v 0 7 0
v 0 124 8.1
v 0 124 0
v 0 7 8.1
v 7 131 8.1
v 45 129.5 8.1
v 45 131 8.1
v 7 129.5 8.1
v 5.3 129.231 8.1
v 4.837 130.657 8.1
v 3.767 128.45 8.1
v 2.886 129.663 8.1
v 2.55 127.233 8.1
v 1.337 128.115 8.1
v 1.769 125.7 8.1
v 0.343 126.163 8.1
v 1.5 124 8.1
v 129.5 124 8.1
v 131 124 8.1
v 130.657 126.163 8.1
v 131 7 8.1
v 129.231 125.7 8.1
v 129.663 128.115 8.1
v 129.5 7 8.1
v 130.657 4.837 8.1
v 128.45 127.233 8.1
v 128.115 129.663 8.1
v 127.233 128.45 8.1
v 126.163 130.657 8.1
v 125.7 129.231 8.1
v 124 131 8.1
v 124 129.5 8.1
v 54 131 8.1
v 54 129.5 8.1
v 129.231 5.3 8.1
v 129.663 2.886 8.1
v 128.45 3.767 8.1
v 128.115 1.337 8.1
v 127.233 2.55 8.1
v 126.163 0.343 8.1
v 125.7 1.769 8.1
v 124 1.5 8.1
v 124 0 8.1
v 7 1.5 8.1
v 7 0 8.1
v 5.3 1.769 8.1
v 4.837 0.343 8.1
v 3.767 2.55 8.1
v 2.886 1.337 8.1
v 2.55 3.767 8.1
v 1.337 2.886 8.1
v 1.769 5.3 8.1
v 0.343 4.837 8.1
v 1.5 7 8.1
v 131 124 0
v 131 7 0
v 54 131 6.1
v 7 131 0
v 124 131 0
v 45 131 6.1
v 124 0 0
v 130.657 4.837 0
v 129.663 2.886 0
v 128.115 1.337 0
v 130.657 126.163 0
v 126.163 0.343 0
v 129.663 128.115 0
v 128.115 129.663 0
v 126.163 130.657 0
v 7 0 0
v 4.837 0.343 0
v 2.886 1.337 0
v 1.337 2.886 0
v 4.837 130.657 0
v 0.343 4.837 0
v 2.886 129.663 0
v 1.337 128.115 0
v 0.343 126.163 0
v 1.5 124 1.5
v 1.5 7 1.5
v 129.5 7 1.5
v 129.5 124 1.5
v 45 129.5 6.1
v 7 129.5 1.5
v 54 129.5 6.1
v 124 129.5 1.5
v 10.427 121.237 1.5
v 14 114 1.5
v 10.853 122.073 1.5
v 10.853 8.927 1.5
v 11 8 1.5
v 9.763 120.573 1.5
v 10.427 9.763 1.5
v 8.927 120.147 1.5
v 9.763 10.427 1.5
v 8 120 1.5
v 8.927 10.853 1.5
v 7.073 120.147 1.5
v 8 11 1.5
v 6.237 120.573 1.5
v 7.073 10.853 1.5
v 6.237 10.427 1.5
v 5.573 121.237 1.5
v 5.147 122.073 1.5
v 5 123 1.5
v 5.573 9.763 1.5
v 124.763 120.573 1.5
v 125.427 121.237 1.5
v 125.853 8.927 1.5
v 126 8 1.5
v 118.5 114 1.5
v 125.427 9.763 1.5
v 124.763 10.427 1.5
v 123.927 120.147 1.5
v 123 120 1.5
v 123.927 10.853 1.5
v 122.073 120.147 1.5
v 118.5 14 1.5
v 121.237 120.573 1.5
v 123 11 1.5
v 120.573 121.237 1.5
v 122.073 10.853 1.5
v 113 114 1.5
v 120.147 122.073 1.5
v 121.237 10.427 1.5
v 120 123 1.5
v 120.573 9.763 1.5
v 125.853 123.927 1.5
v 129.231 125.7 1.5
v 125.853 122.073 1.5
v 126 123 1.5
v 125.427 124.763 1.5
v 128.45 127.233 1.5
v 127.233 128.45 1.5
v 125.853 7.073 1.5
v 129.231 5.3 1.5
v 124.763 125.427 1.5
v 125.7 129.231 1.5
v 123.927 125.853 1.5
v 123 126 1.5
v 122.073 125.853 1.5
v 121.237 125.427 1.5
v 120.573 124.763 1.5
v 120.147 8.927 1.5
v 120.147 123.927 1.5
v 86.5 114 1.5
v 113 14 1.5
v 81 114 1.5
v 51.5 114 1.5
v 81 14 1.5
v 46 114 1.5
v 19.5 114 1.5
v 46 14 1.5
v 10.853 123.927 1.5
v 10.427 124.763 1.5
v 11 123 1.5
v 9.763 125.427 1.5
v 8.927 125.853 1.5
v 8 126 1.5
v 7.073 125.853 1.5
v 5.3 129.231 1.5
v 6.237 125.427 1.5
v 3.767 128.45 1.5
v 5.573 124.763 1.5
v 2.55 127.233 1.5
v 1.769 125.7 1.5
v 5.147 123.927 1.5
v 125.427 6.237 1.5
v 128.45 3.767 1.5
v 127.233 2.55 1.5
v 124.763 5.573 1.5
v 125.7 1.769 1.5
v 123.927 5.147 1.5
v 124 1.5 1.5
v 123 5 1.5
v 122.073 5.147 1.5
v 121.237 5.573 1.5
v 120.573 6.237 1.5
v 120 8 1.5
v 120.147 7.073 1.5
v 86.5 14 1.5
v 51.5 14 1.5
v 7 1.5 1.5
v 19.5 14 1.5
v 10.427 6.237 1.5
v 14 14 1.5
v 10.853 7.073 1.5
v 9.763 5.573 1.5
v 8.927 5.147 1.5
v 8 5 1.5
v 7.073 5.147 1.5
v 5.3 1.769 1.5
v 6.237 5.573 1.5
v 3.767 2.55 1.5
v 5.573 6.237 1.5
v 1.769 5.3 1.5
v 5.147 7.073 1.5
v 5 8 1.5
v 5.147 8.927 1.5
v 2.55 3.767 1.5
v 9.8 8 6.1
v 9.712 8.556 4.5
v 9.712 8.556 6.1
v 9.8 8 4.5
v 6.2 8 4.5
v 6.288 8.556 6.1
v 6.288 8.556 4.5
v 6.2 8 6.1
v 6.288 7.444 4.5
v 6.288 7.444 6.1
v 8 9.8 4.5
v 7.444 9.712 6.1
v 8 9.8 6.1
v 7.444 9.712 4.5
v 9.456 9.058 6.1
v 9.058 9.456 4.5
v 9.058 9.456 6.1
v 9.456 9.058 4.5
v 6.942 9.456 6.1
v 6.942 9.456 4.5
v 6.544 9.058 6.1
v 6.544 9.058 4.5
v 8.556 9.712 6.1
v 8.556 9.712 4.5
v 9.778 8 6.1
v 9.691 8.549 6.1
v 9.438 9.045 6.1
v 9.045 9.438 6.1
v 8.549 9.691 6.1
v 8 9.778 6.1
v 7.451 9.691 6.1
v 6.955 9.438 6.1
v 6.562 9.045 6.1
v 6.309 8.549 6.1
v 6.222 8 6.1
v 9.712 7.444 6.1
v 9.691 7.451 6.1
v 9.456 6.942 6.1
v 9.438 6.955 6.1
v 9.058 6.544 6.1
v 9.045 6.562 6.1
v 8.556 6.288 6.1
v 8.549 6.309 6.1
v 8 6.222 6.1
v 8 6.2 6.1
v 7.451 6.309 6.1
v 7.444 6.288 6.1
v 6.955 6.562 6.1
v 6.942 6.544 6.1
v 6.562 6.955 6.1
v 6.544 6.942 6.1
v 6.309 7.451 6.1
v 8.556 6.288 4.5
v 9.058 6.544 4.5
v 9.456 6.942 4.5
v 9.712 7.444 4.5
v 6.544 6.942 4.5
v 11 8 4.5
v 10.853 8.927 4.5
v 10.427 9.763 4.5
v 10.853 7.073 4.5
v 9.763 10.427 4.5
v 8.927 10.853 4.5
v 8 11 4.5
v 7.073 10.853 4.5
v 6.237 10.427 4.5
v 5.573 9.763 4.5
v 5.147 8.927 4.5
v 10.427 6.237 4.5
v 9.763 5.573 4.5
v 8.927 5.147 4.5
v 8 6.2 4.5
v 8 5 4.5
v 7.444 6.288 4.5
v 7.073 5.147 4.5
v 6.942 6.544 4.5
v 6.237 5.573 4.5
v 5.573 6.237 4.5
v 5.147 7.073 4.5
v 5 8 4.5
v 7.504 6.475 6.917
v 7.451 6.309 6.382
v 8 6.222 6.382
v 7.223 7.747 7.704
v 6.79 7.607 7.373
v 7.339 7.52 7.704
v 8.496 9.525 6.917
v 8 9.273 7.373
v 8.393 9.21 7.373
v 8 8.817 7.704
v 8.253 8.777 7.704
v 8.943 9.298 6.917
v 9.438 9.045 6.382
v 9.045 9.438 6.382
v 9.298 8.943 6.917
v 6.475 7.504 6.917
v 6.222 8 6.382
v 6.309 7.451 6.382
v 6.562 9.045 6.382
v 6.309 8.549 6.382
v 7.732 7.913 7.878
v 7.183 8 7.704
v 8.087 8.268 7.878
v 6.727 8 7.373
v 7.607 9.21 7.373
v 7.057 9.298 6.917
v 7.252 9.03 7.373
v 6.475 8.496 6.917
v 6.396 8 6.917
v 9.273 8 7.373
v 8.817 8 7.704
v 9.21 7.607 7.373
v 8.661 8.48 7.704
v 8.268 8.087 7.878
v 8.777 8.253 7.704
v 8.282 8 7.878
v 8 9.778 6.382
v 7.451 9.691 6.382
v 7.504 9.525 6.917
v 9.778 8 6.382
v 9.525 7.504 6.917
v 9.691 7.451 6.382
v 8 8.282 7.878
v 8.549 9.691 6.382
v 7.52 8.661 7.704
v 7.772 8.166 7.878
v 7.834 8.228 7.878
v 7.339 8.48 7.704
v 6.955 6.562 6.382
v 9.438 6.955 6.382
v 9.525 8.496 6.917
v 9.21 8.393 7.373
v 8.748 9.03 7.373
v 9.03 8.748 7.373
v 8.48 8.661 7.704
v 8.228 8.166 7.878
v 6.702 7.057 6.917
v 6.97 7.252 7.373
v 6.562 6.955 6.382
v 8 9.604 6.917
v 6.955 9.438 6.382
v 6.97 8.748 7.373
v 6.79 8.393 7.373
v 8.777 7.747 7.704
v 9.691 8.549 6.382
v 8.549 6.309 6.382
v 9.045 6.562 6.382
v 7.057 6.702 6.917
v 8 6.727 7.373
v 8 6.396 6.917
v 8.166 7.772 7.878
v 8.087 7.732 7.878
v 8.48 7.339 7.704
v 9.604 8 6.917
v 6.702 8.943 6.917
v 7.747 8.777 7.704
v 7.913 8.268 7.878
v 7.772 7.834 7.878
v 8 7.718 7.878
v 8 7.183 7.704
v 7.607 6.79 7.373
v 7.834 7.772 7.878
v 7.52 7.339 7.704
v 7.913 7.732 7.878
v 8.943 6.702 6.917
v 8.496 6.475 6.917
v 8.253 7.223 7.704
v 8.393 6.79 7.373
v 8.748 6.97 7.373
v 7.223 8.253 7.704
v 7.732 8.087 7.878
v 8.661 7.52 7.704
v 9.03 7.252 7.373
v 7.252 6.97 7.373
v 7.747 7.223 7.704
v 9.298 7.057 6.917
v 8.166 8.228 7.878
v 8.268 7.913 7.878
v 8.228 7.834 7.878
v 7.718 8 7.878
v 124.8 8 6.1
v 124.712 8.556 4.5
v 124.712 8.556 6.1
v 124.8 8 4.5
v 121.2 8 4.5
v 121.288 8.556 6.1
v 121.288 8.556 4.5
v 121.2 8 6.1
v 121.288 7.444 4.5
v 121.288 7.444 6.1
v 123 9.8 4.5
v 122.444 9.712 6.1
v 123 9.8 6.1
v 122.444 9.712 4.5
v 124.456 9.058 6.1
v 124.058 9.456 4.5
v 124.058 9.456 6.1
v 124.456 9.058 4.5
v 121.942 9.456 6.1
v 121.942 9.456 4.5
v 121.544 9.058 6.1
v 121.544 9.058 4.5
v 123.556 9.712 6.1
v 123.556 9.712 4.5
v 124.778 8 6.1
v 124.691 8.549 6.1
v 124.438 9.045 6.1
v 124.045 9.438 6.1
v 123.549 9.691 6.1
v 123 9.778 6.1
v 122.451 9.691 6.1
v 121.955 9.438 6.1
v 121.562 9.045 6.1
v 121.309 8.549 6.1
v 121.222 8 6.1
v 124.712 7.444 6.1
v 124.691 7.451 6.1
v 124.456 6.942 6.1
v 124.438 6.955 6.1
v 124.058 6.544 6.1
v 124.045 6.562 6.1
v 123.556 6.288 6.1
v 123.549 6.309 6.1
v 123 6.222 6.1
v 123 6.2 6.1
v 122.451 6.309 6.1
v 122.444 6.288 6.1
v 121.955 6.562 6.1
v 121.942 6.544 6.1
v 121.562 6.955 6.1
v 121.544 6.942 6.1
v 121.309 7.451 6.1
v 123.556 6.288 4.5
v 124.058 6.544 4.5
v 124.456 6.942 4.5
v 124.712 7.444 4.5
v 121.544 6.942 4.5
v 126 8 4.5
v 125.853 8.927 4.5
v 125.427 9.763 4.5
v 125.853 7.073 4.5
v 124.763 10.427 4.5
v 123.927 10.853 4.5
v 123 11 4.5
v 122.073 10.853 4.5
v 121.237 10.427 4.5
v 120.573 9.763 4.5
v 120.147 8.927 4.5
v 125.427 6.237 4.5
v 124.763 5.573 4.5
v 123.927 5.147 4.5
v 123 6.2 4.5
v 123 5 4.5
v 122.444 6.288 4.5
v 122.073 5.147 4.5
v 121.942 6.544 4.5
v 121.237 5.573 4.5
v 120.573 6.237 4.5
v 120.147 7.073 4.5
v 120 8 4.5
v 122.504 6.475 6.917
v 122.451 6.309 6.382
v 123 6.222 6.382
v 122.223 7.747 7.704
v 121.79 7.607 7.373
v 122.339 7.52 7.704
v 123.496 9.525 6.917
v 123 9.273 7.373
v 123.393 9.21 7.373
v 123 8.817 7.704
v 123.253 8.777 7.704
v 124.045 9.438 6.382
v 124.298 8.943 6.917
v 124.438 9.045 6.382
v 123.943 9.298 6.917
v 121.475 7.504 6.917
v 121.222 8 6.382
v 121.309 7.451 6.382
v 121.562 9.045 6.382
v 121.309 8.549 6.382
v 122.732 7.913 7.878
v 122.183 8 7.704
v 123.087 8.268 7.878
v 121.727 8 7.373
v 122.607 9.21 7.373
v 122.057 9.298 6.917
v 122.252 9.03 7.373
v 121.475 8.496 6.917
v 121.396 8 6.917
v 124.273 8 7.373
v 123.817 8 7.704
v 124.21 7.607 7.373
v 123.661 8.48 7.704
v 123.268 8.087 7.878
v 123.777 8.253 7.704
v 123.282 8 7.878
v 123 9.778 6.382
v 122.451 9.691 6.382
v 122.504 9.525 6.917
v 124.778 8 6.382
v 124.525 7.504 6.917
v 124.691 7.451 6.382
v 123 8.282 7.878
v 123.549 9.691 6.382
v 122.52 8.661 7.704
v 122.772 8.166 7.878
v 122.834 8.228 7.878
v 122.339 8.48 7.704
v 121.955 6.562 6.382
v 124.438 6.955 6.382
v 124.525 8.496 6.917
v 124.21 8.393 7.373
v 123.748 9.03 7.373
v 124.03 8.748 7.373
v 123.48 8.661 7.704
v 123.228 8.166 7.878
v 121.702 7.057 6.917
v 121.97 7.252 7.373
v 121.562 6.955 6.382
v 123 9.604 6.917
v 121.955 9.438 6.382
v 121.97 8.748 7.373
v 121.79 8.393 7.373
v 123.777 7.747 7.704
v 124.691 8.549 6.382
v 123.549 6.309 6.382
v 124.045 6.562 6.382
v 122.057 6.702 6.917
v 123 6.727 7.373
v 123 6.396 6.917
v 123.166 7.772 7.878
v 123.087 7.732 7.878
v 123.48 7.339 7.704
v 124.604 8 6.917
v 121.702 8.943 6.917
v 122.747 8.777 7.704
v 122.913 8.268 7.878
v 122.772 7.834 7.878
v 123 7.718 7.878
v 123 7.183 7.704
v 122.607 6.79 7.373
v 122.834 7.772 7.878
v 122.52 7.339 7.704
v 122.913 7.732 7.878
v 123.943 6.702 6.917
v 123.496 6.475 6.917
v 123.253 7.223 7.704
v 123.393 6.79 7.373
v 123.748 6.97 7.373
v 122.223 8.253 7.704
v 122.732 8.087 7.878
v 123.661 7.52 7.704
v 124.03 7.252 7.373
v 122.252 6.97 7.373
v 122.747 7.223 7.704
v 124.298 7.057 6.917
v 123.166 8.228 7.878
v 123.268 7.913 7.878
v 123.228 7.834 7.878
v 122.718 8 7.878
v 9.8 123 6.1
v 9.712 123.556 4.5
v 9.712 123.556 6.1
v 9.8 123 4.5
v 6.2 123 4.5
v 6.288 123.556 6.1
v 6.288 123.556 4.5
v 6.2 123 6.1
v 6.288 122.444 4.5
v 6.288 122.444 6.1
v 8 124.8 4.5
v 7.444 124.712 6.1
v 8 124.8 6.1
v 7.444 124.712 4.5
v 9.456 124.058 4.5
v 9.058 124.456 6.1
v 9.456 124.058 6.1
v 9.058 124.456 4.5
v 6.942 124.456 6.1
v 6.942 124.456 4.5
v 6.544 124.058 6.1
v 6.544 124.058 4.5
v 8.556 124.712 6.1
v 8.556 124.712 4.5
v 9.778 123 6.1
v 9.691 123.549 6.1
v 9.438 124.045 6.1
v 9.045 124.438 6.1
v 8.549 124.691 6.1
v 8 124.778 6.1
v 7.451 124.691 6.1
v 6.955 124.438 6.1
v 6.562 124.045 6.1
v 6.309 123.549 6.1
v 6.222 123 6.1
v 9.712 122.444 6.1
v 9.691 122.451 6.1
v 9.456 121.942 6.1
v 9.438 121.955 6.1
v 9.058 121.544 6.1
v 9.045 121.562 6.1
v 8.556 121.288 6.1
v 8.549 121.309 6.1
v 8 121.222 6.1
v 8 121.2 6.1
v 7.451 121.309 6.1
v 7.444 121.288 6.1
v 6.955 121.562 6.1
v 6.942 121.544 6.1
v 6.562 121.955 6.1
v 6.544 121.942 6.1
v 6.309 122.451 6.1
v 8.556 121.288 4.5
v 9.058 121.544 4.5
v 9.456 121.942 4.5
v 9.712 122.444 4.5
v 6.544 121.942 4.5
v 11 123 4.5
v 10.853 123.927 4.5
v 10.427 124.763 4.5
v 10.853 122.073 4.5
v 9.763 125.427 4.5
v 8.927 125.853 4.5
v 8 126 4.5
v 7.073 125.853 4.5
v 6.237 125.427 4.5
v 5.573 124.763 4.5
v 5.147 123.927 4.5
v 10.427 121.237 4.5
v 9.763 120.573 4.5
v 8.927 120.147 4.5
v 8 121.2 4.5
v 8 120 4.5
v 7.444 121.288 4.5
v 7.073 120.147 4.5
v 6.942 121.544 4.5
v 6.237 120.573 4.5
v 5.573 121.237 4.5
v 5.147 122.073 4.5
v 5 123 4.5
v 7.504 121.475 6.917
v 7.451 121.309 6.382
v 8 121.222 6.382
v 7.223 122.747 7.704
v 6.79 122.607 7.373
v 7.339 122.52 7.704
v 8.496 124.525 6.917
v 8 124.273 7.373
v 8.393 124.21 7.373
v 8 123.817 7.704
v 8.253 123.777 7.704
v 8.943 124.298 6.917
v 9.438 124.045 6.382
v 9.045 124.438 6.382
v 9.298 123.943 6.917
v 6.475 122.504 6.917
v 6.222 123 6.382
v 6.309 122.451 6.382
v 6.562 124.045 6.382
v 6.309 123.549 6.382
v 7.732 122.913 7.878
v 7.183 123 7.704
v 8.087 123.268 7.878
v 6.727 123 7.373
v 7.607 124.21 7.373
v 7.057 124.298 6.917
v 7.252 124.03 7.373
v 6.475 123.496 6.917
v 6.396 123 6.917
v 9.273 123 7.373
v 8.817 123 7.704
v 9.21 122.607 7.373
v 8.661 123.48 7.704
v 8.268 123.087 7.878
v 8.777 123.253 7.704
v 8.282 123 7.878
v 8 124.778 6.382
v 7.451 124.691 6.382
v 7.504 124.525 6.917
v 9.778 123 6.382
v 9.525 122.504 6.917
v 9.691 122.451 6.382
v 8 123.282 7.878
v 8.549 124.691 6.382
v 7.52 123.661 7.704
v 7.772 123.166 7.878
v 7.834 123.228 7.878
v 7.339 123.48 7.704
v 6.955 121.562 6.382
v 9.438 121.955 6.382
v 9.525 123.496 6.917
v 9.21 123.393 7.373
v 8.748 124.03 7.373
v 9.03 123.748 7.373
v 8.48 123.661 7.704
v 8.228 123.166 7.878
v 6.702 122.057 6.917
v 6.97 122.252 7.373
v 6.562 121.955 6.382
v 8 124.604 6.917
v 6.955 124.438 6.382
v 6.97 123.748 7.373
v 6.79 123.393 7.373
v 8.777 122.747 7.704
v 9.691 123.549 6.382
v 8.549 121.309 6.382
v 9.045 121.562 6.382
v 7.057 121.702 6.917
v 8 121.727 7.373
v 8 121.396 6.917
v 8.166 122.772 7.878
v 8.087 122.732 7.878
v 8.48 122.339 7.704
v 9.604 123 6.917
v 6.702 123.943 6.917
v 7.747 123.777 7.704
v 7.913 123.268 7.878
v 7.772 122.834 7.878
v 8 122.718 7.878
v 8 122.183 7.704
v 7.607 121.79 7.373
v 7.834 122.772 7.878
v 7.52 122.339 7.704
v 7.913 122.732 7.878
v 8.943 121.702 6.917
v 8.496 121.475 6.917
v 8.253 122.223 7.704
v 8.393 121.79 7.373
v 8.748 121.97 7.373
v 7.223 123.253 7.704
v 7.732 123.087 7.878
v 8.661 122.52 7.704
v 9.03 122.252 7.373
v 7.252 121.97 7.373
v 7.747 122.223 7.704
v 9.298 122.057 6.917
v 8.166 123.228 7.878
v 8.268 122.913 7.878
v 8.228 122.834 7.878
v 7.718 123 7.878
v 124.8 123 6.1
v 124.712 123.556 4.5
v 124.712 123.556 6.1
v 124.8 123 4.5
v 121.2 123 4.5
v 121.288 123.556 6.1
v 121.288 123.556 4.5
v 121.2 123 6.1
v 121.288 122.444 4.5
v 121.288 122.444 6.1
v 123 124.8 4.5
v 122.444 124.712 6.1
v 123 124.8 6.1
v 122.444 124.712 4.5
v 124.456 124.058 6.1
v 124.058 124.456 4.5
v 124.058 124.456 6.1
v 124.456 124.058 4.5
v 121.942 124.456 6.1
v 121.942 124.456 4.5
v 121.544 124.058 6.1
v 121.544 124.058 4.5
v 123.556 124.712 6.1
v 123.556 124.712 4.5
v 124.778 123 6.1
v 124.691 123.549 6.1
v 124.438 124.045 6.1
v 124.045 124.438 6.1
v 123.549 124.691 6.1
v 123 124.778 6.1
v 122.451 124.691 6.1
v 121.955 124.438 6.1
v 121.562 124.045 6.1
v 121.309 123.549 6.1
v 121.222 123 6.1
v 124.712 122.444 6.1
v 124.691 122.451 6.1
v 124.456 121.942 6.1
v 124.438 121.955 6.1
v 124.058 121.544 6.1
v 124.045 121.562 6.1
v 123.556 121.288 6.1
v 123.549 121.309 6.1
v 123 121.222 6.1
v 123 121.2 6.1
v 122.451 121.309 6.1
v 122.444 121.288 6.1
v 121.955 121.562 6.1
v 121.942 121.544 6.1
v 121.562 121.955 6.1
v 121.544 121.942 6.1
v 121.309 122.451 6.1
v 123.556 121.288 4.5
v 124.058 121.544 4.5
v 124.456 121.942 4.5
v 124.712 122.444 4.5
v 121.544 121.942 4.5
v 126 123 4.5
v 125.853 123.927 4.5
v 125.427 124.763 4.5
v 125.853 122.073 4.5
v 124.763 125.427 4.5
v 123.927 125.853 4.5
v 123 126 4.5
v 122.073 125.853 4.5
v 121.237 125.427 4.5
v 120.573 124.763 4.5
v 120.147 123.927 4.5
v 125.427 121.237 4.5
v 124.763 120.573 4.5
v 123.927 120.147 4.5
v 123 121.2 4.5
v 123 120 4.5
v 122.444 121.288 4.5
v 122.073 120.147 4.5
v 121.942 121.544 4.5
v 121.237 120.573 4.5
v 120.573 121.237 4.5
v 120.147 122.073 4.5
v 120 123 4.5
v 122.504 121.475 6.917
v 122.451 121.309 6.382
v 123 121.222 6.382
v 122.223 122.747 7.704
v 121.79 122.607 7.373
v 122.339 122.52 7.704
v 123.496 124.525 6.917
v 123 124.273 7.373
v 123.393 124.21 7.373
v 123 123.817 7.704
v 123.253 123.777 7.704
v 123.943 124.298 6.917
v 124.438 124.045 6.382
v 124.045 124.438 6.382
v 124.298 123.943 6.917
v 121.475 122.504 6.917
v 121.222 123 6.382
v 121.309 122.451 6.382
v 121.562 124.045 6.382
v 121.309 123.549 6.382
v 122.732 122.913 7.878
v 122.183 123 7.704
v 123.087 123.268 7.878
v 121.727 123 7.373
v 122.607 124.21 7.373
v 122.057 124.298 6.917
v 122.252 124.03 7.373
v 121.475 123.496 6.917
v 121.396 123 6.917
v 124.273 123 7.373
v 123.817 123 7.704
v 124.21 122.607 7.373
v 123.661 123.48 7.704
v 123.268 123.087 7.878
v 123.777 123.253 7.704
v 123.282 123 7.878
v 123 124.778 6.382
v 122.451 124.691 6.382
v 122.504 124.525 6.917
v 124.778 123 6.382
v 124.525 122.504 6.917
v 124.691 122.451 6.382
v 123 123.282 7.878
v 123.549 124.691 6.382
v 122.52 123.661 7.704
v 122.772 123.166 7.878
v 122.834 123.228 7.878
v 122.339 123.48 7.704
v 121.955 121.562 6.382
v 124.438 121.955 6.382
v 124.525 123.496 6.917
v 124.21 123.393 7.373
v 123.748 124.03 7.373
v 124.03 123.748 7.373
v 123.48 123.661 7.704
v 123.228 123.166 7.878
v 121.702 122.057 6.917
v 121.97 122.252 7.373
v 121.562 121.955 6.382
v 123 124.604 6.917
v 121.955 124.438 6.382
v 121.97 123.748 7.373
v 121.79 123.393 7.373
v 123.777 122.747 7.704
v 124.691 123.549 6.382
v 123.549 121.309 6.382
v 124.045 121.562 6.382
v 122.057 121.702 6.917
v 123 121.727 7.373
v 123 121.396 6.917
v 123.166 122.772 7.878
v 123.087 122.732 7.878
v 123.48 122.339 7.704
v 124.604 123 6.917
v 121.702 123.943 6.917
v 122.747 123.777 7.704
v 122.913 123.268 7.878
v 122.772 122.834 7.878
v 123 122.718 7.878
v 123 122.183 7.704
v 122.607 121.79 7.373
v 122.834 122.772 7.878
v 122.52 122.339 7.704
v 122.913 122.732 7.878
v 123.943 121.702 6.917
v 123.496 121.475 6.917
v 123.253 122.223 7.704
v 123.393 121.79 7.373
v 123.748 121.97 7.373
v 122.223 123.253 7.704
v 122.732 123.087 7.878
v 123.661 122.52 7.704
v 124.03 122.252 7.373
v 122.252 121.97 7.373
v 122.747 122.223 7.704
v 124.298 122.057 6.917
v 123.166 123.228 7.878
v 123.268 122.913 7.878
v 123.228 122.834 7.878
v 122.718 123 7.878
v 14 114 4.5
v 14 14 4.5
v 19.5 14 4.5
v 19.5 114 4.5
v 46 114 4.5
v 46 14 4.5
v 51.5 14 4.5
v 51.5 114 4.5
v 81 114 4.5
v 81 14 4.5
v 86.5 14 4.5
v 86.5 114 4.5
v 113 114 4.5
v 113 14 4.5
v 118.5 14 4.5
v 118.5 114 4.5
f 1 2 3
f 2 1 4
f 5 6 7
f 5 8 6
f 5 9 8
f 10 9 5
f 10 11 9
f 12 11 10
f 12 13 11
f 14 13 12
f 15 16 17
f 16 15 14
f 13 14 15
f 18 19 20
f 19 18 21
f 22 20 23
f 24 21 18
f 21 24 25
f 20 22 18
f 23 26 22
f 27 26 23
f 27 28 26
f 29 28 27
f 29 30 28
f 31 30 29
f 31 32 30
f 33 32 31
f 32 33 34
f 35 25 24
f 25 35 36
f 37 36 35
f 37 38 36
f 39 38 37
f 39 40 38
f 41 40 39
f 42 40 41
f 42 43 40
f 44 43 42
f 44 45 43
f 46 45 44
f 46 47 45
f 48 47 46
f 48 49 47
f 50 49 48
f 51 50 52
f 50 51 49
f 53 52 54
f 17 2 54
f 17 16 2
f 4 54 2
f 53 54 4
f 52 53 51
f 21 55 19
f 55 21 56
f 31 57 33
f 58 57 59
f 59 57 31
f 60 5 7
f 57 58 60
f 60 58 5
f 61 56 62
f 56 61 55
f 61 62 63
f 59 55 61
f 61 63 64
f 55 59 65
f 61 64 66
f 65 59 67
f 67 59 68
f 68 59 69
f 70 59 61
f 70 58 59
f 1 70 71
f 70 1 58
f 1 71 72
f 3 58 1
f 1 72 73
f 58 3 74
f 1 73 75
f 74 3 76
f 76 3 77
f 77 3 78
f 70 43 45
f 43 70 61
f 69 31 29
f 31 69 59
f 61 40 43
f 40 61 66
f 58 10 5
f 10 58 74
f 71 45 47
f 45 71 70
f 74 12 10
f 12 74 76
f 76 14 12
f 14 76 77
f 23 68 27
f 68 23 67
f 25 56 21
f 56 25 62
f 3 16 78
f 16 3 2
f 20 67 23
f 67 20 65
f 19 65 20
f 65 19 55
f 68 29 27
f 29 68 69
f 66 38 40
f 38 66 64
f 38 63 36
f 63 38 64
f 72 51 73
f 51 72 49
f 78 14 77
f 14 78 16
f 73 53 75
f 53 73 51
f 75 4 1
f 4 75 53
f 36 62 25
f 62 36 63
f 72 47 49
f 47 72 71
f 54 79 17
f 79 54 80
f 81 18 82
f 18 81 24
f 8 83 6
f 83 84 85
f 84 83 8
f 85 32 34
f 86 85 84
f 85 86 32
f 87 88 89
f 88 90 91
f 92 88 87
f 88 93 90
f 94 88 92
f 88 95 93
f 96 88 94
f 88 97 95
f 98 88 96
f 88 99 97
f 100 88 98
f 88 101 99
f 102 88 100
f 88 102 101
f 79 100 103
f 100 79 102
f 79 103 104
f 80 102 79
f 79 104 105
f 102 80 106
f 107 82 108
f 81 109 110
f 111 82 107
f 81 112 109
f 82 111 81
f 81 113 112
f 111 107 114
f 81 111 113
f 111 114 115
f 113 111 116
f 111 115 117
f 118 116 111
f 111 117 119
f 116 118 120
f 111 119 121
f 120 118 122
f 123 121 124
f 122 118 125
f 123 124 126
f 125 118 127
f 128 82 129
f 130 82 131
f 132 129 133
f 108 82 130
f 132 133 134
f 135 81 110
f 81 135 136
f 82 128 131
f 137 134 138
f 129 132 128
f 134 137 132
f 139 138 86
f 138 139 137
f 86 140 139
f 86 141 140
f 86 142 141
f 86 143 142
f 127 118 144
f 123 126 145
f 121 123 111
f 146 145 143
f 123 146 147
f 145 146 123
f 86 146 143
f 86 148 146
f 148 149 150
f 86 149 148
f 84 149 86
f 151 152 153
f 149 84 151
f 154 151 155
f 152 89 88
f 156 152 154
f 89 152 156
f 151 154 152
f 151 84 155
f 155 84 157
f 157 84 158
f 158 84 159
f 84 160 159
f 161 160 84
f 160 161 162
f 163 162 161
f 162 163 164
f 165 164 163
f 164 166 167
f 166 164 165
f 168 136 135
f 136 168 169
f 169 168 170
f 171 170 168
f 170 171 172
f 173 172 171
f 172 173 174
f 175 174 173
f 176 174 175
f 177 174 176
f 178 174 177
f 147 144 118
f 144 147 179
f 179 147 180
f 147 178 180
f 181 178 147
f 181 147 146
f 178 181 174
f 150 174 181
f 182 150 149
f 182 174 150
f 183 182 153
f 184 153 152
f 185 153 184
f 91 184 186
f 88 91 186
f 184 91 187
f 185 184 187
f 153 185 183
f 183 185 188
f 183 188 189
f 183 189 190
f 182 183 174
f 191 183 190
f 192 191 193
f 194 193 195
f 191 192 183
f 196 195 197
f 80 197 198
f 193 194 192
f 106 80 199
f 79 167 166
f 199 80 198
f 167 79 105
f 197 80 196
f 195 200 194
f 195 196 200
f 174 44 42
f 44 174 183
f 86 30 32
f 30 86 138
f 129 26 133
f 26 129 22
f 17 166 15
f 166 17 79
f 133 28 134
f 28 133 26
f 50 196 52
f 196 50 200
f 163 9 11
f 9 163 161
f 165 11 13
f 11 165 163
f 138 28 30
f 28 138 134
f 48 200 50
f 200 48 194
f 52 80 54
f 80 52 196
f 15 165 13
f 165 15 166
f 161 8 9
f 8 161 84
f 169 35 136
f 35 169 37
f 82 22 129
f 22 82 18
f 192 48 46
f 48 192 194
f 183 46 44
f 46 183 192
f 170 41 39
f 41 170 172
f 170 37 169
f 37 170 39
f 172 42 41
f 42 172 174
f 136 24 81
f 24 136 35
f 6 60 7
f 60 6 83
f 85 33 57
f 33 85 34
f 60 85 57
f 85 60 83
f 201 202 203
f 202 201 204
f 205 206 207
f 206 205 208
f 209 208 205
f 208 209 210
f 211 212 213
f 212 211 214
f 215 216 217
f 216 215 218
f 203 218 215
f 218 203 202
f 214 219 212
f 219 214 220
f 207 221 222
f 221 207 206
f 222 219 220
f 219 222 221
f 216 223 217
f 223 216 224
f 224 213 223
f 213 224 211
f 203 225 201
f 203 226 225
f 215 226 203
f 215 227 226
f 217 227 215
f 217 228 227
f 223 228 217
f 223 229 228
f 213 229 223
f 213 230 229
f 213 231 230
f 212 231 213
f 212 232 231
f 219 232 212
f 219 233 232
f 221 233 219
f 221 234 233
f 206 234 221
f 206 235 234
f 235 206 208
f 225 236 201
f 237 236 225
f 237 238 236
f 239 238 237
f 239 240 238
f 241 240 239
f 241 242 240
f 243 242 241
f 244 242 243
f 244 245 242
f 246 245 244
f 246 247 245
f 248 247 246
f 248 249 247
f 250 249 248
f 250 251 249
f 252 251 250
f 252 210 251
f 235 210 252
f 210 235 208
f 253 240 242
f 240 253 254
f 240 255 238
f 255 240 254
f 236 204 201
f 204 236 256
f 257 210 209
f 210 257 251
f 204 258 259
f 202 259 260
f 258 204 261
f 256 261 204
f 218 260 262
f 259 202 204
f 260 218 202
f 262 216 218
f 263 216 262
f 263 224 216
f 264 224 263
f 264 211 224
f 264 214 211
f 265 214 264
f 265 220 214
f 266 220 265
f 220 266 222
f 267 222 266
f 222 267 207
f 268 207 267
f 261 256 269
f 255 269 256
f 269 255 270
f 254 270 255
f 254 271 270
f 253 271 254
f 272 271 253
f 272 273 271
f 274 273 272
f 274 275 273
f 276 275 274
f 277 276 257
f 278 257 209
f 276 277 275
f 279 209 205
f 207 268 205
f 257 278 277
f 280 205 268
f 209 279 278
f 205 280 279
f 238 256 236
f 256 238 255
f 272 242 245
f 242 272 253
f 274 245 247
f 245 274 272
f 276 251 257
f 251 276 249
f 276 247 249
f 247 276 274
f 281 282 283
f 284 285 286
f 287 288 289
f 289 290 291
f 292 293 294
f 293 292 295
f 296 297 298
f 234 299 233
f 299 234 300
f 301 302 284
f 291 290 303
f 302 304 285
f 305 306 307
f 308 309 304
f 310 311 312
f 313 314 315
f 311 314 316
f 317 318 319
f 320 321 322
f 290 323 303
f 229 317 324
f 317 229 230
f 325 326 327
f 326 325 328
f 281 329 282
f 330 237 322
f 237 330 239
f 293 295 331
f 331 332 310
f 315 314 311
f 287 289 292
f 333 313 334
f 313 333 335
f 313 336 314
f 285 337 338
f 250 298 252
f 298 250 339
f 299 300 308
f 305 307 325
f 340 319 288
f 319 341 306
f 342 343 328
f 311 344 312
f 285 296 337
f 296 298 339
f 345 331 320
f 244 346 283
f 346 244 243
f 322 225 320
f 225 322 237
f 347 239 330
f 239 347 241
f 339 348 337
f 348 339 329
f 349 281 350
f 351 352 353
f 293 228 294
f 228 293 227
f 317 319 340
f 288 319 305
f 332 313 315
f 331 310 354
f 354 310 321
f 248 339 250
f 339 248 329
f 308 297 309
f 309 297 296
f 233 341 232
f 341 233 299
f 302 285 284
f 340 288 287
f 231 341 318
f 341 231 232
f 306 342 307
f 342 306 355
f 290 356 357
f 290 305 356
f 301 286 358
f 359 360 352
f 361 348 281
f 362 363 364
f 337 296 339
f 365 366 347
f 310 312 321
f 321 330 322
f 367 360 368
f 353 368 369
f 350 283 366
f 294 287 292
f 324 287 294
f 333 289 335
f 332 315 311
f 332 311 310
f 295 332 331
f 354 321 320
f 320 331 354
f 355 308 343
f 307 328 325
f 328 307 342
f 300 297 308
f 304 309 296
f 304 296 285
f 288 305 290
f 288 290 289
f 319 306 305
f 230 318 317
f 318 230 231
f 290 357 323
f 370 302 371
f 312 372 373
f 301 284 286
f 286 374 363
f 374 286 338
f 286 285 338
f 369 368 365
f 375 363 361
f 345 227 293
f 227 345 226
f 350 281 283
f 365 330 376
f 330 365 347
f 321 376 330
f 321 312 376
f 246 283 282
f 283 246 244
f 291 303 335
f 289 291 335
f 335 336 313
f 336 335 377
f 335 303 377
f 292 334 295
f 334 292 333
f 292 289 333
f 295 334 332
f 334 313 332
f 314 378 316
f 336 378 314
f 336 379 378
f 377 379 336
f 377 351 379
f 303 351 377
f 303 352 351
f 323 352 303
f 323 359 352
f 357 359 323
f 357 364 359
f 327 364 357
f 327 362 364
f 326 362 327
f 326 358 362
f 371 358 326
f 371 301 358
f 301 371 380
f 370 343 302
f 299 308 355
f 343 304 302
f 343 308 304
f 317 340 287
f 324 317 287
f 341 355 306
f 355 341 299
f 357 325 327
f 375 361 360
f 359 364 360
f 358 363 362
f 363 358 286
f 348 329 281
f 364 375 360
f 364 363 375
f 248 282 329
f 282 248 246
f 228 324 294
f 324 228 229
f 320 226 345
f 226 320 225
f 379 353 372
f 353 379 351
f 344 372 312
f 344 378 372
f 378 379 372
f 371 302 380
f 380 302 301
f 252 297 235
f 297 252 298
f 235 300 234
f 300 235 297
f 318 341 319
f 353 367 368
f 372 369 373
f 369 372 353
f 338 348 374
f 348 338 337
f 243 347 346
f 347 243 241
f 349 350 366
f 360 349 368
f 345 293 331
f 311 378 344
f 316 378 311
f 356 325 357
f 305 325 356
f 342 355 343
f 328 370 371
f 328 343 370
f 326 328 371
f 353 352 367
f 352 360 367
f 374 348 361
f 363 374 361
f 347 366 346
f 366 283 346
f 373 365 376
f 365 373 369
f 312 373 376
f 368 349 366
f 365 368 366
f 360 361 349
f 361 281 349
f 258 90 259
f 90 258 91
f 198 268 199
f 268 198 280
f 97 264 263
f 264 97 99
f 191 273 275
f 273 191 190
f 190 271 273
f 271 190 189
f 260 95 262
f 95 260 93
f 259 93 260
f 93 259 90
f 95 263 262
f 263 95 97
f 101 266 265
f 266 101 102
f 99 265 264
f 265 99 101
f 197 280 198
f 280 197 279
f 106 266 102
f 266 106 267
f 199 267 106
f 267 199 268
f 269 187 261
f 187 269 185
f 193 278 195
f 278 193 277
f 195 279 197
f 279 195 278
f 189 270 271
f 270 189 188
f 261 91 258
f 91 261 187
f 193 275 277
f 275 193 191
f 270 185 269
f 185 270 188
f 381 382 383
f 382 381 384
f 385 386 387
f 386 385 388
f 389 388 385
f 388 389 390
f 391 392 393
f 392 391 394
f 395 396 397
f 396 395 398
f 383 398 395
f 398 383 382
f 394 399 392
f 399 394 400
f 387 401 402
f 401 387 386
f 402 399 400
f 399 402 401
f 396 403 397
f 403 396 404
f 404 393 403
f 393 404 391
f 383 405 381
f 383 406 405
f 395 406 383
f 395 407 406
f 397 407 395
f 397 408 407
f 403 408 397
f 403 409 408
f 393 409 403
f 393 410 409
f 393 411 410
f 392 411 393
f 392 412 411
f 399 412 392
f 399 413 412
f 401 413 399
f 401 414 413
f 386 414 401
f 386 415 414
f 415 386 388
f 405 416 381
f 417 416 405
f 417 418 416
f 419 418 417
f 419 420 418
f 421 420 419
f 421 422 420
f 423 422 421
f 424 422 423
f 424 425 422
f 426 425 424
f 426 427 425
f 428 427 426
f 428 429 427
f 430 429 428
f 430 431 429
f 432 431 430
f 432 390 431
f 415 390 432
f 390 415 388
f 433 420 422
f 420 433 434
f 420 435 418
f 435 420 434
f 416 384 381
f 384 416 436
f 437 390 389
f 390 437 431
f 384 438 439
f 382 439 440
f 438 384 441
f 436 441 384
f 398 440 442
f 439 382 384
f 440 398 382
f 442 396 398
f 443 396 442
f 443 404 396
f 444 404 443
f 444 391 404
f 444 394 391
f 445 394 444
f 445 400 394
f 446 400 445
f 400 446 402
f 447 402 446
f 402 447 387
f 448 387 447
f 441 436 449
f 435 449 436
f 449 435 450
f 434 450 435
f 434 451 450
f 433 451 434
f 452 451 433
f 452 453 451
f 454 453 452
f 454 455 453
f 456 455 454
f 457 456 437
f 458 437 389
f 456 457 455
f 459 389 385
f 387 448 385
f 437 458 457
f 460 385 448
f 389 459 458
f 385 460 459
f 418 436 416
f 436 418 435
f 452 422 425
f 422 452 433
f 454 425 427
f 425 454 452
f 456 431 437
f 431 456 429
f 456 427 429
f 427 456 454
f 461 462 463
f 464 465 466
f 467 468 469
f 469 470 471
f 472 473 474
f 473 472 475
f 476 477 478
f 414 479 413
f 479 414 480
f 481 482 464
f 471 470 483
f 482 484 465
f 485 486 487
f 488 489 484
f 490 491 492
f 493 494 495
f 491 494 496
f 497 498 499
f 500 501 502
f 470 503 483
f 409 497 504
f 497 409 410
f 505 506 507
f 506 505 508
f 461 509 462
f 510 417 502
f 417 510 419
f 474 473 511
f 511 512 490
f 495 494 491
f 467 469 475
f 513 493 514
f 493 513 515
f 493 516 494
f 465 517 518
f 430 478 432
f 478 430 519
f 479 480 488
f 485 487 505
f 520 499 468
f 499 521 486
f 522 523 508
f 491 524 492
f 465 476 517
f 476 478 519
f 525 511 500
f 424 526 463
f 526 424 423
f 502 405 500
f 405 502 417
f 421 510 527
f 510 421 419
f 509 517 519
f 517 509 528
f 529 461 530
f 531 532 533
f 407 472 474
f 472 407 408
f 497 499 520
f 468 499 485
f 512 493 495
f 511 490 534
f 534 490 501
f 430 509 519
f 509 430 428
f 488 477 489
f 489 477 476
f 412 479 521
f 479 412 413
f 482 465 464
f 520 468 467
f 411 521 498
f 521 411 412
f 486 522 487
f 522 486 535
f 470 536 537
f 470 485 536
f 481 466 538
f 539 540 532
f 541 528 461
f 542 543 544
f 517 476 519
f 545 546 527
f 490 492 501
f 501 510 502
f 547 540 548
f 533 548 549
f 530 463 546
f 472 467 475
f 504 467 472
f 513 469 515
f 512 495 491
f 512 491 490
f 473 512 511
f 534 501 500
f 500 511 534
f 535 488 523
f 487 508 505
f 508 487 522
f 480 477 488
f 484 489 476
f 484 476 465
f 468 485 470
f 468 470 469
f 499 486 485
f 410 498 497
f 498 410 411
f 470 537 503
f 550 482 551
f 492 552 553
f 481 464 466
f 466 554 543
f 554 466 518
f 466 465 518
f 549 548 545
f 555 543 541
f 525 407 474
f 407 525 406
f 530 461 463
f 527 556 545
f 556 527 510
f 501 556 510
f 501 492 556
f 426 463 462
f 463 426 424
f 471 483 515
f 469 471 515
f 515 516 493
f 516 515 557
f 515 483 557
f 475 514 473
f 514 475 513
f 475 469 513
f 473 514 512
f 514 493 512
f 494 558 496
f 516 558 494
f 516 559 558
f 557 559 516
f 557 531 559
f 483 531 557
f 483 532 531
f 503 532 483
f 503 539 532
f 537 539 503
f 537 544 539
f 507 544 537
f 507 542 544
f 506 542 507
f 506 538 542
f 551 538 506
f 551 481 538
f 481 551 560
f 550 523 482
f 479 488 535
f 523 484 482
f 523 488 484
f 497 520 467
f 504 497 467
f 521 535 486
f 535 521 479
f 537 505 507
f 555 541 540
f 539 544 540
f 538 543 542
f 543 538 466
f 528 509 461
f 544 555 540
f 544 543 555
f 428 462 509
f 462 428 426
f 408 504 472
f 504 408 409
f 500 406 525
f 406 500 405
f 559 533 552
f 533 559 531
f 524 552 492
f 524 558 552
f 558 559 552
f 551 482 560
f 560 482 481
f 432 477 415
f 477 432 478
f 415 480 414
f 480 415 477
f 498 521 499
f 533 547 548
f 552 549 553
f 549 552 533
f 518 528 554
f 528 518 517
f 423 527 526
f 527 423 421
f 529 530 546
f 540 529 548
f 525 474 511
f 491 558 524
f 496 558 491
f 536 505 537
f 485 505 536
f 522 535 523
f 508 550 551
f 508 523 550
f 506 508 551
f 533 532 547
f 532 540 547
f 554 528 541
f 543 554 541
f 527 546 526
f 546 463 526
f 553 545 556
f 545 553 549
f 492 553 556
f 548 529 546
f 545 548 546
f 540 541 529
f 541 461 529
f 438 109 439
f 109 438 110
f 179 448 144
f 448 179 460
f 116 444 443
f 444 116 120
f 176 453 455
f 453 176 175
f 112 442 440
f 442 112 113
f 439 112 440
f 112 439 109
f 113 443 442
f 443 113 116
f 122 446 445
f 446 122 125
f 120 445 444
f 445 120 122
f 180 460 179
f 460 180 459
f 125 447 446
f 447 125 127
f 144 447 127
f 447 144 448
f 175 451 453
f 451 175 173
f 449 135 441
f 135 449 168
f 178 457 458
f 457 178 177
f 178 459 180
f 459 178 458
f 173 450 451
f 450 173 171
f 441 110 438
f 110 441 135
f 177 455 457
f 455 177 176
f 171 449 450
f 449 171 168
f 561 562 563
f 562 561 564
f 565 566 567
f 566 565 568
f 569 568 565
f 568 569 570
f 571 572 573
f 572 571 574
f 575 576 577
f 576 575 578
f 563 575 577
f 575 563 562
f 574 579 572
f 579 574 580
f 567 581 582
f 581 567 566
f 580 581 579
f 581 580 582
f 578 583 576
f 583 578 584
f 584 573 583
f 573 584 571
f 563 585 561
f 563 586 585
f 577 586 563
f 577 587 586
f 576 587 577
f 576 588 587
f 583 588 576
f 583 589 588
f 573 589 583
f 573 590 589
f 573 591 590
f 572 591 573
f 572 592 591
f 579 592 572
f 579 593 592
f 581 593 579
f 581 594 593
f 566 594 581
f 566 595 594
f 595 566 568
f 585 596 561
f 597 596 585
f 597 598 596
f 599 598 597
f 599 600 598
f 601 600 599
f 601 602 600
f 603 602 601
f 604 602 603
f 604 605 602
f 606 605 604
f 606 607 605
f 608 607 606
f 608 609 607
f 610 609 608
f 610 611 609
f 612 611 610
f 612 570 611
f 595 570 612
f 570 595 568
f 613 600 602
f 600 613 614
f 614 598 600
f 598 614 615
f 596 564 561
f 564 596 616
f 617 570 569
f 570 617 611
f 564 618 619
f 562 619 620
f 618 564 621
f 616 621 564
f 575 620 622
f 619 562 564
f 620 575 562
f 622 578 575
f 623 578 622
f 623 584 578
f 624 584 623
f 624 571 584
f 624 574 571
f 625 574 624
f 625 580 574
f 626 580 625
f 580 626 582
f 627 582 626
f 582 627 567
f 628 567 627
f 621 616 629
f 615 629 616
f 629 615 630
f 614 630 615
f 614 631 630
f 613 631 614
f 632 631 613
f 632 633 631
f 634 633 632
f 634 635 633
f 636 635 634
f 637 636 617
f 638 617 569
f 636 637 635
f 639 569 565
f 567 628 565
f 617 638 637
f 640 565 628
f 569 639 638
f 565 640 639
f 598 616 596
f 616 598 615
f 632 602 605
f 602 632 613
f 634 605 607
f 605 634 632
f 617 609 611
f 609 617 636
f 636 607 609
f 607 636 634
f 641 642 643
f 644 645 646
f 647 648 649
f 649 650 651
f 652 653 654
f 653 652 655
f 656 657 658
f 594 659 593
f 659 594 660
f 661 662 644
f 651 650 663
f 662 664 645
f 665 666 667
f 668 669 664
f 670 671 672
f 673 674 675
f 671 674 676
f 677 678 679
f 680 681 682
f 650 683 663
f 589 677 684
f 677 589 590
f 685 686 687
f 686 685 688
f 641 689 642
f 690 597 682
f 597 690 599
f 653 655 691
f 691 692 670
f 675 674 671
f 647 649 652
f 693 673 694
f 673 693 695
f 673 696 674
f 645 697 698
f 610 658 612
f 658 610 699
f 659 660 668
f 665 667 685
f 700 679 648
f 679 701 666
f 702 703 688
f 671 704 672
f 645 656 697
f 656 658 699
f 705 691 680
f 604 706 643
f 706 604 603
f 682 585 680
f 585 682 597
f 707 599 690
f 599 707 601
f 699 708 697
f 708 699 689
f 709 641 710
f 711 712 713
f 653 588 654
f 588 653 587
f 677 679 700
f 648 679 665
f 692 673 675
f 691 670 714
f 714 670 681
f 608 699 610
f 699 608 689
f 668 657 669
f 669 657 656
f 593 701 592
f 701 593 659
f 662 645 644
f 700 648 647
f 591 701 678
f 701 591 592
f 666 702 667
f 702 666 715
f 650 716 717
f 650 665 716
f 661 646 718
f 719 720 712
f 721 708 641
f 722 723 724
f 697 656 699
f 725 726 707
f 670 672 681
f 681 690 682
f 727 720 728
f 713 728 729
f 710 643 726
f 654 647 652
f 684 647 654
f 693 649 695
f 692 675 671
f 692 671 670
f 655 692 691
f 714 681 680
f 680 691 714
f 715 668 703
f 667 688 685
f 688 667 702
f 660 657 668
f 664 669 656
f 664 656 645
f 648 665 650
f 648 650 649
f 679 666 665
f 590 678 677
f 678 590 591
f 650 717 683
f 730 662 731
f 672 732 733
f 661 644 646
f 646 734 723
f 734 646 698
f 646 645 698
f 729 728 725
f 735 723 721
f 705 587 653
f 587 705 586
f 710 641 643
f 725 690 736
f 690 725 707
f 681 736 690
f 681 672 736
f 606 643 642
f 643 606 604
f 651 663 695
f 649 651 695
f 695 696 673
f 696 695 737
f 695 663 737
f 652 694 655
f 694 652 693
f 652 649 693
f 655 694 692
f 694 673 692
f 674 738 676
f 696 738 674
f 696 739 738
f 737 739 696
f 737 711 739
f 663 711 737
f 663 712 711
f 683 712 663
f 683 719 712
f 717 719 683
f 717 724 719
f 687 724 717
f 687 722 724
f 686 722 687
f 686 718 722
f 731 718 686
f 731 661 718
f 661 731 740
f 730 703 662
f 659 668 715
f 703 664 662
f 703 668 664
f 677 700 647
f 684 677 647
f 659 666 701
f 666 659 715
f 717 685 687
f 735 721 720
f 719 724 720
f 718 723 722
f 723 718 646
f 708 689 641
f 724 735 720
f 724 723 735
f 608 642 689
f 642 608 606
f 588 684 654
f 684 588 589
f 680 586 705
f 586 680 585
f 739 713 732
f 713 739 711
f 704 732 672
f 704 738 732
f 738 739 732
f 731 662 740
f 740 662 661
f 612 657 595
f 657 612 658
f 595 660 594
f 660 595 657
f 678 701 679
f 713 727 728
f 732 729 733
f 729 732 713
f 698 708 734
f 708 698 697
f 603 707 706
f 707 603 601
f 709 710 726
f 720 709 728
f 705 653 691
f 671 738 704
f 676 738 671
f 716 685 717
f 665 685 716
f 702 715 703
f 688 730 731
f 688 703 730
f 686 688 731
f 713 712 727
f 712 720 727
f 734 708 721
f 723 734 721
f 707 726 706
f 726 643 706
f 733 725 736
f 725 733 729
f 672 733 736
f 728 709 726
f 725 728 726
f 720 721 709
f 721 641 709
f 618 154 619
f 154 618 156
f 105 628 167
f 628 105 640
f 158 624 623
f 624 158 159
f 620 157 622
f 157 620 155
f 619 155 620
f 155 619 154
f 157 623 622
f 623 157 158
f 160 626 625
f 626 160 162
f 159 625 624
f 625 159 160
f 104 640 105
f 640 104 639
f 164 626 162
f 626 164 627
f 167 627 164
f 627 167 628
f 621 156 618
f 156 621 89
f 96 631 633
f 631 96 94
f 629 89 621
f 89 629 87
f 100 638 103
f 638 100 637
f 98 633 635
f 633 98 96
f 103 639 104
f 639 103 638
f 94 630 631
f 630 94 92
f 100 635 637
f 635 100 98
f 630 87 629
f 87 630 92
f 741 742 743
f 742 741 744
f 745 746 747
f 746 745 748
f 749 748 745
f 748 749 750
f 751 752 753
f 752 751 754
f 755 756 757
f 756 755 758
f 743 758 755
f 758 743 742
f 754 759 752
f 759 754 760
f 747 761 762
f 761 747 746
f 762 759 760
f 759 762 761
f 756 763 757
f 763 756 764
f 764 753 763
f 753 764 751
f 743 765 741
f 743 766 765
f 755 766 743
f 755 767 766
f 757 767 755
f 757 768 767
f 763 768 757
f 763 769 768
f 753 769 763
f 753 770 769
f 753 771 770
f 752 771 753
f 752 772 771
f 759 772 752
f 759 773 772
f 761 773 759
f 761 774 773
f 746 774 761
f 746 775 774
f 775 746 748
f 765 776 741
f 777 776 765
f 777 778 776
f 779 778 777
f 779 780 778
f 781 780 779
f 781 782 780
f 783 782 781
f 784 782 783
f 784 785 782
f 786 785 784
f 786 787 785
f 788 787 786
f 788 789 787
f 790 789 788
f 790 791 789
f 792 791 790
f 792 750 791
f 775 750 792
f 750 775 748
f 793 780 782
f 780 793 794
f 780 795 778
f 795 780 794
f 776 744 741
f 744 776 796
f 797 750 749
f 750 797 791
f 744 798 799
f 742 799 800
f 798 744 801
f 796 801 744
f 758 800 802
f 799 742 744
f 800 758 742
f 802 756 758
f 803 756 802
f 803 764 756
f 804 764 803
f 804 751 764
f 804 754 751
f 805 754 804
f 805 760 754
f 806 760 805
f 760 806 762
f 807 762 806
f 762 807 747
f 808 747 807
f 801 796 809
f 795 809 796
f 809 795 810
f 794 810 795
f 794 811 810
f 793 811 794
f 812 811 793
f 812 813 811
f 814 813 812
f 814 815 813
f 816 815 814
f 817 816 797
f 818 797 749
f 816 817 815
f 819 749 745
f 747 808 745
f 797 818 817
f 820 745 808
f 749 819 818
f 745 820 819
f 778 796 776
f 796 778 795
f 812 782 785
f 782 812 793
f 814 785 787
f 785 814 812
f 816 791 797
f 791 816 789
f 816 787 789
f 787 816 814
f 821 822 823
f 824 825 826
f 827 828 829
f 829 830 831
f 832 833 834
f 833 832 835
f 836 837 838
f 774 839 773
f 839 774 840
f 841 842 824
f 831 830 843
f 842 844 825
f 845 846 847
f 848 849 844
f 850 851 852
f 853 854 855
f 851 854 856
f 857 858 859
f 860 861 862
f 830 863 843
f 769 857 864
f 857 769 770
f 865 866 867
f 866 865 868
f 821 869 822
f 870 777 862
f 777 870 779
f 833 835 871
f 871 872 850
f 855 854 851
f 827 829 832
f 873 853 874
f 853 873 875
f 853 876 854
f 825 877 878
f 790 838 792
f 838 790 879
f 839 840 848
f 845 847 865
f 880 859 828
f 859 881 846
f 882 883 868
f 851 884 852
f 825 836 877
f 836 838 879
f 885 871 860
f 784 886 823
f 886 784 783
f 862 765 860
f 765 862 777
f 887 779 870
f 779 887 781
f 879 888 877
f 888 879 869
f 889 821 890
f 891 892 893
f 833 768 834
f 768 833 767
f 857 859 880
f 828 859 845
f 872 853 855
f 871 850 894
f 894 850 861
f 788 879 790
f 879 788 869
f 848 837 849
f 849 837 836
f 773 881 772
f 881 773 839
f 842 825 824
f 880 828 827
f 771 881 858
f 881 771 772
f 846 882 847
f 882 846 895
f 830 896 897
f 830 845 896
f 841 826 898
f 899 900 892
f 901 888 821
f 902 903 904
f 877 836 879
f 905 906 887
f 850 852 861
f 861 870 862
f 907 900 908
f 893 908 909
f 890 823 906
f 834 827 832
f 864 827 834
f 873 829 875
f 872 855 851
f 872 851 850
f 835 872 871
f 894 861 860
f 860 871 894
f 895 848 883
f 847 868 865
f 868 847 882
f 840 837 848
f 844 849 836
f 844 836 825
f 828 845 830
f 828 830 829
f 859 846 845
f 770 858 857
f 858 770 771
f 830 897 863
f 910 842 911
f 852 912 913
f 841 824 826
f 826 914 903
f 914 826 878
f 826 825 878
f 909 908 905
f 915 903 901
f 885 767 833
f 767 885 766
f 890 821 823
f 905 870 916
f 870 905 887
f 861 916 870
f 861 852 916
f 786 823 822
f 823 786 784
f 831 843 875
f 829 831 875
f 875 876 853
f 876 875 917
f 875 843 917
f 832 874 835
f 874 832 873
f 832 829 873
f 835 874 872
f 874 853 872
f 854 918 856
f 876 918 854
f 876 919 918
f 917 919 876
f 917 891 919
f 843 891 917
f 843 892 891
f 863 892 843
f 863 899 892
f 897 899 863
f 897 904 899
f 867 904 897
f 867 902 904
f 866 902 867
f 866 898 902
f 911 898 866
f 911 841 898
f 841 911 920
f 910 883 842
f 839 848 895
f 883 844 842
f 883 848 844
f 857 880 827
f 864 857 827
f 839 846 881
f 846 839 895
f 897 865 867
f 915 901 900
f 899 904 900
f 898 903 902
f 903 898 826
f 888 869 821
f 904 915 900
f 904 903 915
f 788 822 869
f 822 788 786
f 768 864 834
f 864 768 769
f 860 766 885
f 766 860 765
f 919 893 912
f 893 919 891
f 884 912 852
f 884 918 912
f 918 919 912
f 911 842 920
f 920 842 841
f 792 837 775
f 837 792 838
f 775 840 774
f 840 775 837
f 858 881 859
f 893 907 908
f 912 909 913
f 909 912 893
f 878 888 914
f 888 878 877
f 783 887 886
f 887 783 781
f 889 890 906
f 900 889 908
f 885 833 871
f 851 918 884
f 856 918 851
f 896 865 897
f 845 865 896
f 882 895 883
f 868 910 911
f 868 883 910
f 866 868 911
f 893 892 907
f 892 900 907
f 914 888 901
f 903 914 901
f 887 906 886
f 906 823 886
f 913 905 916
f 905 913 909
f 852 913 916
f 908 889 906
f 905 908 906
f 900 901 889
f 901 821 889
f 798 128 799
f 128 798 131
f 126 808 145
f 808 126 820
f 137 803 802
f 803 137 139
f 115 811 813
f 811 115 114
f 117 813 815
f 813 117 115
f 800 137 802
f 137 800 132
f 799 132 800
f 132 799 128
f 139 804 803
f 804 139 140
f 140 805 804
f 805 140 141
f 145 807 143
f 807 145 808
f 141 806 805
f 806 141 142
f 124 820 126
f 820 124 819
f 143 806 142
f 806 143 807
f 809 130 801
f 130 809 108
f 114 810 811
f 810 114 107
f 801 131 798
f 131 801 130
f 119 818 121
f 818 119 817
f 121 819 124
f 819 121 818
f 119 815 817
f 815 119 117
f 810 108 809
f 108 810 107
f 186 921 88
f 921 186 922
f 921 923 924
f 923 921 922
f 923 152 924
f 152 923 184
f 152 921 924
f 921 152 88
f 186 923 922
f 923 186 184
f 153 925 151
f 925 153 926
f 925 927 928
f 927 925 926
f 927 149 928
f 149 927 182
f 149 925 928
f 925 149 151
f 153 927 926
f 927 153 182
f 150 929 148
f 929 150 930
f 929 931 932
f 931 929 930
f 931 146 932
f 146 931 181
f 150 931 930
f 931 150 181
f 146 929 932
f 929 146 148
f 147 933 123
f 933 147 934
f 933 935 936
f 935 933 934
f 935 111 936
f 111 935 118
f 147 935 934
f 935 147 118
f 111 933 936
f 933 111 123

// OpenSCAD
/*
// Simple DIY Electronic Music Projects
//    diyelectromusic.wordpress.com
//
// RC2014 Base plate
//
      MIT License
      
      Copyright (c) 2025 diyelectromusic (Kevin)
      
      Permission is hereby granted, free of charge, to any person obtaining a copy of
      this software and associated documentation files (the "Software"), to deal in
      the Software without restriction, including without limitation the rights to
      use, copy, modify, merge, publish, distribute, sublicense, and/or sell copies of
      the Software, and to permit persons to whom the Software is furnished to do so,
      subject to the following conditions:
      
      The above copyright notice and this permission notice shall be included in all
      copies or substantial portions of the Software.
      
      THE SOFTWARE IS PROVIDED "AS IS", WITHOUT WARRANTY OF ANY KIND, EXPRESS OR
      IMPLIED, INCLUDING BUT NOT LIMITED TO THE WARRANTIES OF MERCHANTABILITY, FITNESS
      FOR A PARTICULAR PURPOSE AND NONINFRINGEMENT. IN NO EVENT SHALL THE AUTHORS OR
      COPYRIGHT HOLDERS BE LIABLE FOR ANY CLAIM, DAMAGES OR OTHER LIABILITY, WHETHERIN
      AN ACTION OF CONTRACT, TORT OR OTHERWISE, ARISING FROM, OUT OF OR IN CONNECTION
      WITH THE SOFTWARE OR THE USE OR OTHER DEALINGS IN THE SOFTWARE.
*/
//
//    +----B------------+
//    +                 +
//    + | | | | | | | | +
//    + | | | | | | | | +
//    + | | | | | | | | +
//    + | | | | | | | | +
//    +   rc2014 base   +
//    +-----------------+
//  ^
//  |
//  y=L  x=W->
//

tol=0.5;    // Tolerance either side of the PCB
pcbw=127;   // Actual width of the PCB
pcbl=127;   // Actual length of the PCB
pcbth=1.6;  // Thickness of the PCB
pcbh=3;     // Height of PCB above base
pcbr=5;     // Radius of curve of corners of PCB
th=1.5;     // Thickness of case sides and base

// box starts at [0,0,0]
pcbx=th+tol; // Start X coord of actual PCB
pcby=th+tol; // Start Y coord of actual PCB

// box dim = pcb dim + thickness and tolerance
boxw=pcbw+th*2+tol*2;
boxl=pcbl+th*2+tol*2;

// box height is thickness of base + PCB thickness + PCB height + bit extra
boxh=th+pcbh+pcbth+2;

// Box corner radius = pcb corner radius + tol + thickness of sides
boxr=pcbr+th+tol;

// PCB mount hole dimensions
pcbhole=6;           // X/Y offset from corner of PCB
mounthole=1.8;       // Radius of mounting point = hole radius less a tolerance
mounthole_h=pcbth;   // Height of mounting point (plus bit extra due to dome shape)
mountsupport=3;      // Radius of support
mountsupport_h=pcbh; // Height of support = height of PCB

// PCB long supports
pcbsupw = 5.5;
pcbsupl = 100;

// Convenience value = offset to mounting point centre from box external
mo=pcbhole+th+tol;

difference() {
union() {
    difference() {
        difference() {
            base();
        }
        // cutout for power socket
        translate([43+pcbx,boxl-5,th+pcbh+pcbth])
            cube([9,9,9]);
    }

    standoff([mo,mo,th],mountsupport,mountsupport_h,mounthole,mounthole_h);
    standoff([boxw-mo,mo,th],mountsupport,mountsupport_h,mounthole,mounthole_h);
    standoff([mo,boxl-mo,th],mountsupport,mountsupport_h,mounthole,mounthole_h);
    standoff([boxw-mo,boxl-mo,th],mountsupport,mountsupport_h,mounthole,mounthole_h);

    translate([pcbx,pcby,th]) {
        pcbsupport([12,12,0]);
        pcbsupport([44,12,0]);
        pcbsupport([79,12,0]);
        pcbsupport([111,12,0]);
    }
}
// Test cutout
union() {
/*    translate([mo+mountsupport,mo+mountsupport,-0.1])
        cube([boxw-2*(mo+mountsupport),boxl-2*(mo+mountsupport),boxh+0.2]);*/
/*    translate([-0.1,-25,-0.1])
        cube([boxw+0.2,boxl,20]);
    translate([22,0,-0.1]) cube([21,125,4]);
    translate([54,0,-0.1]) cube([24,125,4]);
    translate([89,0,-0.1]) cube([21,125,4]);*/
}
}

module base() {
    difference() {
        // Outside
        intersection() {
            cube([boxw,boxl,boxh]);
            rounded([boxw,boxl,boxh*2],boxr);
        }
        // Inside
        translate([th,th,th]) {
            intersection() {
                cube([pcbw+tol*2,pcbl+tol*2,boxh]);
                rounded([pcbw+tol*2,pcbl+tol*2,boxh*2-th*2],pcbr+tol);
            }
        }
    }
}

module pcbsupport(pos) {
    translate(pos) {
        cube([pcbsupw,pcbsupl,pcbh]);
    }
}

module standoff(pos,r,h,hr,hh) {
    translate(pos) {
        // post
        cylinder(h=h, r=r, $fn=20);
        translate([0,0,h]) {
            // mounting
            cylinder(h=hh, r=hr, $fn=20);
            translate([0,0,hh])
                sphere(r=hr, $fn=20);
        }
    }
}

module rounded(size, radius) {
	translate ([radius, radius, 0]) {
        minkowski() {
            cube([size[0]-(radius * 2), size[1]-(radius * 2), size[2]]);
            cylinder(r=radius, h=size[2], $fn=20);
        }
    }
}
